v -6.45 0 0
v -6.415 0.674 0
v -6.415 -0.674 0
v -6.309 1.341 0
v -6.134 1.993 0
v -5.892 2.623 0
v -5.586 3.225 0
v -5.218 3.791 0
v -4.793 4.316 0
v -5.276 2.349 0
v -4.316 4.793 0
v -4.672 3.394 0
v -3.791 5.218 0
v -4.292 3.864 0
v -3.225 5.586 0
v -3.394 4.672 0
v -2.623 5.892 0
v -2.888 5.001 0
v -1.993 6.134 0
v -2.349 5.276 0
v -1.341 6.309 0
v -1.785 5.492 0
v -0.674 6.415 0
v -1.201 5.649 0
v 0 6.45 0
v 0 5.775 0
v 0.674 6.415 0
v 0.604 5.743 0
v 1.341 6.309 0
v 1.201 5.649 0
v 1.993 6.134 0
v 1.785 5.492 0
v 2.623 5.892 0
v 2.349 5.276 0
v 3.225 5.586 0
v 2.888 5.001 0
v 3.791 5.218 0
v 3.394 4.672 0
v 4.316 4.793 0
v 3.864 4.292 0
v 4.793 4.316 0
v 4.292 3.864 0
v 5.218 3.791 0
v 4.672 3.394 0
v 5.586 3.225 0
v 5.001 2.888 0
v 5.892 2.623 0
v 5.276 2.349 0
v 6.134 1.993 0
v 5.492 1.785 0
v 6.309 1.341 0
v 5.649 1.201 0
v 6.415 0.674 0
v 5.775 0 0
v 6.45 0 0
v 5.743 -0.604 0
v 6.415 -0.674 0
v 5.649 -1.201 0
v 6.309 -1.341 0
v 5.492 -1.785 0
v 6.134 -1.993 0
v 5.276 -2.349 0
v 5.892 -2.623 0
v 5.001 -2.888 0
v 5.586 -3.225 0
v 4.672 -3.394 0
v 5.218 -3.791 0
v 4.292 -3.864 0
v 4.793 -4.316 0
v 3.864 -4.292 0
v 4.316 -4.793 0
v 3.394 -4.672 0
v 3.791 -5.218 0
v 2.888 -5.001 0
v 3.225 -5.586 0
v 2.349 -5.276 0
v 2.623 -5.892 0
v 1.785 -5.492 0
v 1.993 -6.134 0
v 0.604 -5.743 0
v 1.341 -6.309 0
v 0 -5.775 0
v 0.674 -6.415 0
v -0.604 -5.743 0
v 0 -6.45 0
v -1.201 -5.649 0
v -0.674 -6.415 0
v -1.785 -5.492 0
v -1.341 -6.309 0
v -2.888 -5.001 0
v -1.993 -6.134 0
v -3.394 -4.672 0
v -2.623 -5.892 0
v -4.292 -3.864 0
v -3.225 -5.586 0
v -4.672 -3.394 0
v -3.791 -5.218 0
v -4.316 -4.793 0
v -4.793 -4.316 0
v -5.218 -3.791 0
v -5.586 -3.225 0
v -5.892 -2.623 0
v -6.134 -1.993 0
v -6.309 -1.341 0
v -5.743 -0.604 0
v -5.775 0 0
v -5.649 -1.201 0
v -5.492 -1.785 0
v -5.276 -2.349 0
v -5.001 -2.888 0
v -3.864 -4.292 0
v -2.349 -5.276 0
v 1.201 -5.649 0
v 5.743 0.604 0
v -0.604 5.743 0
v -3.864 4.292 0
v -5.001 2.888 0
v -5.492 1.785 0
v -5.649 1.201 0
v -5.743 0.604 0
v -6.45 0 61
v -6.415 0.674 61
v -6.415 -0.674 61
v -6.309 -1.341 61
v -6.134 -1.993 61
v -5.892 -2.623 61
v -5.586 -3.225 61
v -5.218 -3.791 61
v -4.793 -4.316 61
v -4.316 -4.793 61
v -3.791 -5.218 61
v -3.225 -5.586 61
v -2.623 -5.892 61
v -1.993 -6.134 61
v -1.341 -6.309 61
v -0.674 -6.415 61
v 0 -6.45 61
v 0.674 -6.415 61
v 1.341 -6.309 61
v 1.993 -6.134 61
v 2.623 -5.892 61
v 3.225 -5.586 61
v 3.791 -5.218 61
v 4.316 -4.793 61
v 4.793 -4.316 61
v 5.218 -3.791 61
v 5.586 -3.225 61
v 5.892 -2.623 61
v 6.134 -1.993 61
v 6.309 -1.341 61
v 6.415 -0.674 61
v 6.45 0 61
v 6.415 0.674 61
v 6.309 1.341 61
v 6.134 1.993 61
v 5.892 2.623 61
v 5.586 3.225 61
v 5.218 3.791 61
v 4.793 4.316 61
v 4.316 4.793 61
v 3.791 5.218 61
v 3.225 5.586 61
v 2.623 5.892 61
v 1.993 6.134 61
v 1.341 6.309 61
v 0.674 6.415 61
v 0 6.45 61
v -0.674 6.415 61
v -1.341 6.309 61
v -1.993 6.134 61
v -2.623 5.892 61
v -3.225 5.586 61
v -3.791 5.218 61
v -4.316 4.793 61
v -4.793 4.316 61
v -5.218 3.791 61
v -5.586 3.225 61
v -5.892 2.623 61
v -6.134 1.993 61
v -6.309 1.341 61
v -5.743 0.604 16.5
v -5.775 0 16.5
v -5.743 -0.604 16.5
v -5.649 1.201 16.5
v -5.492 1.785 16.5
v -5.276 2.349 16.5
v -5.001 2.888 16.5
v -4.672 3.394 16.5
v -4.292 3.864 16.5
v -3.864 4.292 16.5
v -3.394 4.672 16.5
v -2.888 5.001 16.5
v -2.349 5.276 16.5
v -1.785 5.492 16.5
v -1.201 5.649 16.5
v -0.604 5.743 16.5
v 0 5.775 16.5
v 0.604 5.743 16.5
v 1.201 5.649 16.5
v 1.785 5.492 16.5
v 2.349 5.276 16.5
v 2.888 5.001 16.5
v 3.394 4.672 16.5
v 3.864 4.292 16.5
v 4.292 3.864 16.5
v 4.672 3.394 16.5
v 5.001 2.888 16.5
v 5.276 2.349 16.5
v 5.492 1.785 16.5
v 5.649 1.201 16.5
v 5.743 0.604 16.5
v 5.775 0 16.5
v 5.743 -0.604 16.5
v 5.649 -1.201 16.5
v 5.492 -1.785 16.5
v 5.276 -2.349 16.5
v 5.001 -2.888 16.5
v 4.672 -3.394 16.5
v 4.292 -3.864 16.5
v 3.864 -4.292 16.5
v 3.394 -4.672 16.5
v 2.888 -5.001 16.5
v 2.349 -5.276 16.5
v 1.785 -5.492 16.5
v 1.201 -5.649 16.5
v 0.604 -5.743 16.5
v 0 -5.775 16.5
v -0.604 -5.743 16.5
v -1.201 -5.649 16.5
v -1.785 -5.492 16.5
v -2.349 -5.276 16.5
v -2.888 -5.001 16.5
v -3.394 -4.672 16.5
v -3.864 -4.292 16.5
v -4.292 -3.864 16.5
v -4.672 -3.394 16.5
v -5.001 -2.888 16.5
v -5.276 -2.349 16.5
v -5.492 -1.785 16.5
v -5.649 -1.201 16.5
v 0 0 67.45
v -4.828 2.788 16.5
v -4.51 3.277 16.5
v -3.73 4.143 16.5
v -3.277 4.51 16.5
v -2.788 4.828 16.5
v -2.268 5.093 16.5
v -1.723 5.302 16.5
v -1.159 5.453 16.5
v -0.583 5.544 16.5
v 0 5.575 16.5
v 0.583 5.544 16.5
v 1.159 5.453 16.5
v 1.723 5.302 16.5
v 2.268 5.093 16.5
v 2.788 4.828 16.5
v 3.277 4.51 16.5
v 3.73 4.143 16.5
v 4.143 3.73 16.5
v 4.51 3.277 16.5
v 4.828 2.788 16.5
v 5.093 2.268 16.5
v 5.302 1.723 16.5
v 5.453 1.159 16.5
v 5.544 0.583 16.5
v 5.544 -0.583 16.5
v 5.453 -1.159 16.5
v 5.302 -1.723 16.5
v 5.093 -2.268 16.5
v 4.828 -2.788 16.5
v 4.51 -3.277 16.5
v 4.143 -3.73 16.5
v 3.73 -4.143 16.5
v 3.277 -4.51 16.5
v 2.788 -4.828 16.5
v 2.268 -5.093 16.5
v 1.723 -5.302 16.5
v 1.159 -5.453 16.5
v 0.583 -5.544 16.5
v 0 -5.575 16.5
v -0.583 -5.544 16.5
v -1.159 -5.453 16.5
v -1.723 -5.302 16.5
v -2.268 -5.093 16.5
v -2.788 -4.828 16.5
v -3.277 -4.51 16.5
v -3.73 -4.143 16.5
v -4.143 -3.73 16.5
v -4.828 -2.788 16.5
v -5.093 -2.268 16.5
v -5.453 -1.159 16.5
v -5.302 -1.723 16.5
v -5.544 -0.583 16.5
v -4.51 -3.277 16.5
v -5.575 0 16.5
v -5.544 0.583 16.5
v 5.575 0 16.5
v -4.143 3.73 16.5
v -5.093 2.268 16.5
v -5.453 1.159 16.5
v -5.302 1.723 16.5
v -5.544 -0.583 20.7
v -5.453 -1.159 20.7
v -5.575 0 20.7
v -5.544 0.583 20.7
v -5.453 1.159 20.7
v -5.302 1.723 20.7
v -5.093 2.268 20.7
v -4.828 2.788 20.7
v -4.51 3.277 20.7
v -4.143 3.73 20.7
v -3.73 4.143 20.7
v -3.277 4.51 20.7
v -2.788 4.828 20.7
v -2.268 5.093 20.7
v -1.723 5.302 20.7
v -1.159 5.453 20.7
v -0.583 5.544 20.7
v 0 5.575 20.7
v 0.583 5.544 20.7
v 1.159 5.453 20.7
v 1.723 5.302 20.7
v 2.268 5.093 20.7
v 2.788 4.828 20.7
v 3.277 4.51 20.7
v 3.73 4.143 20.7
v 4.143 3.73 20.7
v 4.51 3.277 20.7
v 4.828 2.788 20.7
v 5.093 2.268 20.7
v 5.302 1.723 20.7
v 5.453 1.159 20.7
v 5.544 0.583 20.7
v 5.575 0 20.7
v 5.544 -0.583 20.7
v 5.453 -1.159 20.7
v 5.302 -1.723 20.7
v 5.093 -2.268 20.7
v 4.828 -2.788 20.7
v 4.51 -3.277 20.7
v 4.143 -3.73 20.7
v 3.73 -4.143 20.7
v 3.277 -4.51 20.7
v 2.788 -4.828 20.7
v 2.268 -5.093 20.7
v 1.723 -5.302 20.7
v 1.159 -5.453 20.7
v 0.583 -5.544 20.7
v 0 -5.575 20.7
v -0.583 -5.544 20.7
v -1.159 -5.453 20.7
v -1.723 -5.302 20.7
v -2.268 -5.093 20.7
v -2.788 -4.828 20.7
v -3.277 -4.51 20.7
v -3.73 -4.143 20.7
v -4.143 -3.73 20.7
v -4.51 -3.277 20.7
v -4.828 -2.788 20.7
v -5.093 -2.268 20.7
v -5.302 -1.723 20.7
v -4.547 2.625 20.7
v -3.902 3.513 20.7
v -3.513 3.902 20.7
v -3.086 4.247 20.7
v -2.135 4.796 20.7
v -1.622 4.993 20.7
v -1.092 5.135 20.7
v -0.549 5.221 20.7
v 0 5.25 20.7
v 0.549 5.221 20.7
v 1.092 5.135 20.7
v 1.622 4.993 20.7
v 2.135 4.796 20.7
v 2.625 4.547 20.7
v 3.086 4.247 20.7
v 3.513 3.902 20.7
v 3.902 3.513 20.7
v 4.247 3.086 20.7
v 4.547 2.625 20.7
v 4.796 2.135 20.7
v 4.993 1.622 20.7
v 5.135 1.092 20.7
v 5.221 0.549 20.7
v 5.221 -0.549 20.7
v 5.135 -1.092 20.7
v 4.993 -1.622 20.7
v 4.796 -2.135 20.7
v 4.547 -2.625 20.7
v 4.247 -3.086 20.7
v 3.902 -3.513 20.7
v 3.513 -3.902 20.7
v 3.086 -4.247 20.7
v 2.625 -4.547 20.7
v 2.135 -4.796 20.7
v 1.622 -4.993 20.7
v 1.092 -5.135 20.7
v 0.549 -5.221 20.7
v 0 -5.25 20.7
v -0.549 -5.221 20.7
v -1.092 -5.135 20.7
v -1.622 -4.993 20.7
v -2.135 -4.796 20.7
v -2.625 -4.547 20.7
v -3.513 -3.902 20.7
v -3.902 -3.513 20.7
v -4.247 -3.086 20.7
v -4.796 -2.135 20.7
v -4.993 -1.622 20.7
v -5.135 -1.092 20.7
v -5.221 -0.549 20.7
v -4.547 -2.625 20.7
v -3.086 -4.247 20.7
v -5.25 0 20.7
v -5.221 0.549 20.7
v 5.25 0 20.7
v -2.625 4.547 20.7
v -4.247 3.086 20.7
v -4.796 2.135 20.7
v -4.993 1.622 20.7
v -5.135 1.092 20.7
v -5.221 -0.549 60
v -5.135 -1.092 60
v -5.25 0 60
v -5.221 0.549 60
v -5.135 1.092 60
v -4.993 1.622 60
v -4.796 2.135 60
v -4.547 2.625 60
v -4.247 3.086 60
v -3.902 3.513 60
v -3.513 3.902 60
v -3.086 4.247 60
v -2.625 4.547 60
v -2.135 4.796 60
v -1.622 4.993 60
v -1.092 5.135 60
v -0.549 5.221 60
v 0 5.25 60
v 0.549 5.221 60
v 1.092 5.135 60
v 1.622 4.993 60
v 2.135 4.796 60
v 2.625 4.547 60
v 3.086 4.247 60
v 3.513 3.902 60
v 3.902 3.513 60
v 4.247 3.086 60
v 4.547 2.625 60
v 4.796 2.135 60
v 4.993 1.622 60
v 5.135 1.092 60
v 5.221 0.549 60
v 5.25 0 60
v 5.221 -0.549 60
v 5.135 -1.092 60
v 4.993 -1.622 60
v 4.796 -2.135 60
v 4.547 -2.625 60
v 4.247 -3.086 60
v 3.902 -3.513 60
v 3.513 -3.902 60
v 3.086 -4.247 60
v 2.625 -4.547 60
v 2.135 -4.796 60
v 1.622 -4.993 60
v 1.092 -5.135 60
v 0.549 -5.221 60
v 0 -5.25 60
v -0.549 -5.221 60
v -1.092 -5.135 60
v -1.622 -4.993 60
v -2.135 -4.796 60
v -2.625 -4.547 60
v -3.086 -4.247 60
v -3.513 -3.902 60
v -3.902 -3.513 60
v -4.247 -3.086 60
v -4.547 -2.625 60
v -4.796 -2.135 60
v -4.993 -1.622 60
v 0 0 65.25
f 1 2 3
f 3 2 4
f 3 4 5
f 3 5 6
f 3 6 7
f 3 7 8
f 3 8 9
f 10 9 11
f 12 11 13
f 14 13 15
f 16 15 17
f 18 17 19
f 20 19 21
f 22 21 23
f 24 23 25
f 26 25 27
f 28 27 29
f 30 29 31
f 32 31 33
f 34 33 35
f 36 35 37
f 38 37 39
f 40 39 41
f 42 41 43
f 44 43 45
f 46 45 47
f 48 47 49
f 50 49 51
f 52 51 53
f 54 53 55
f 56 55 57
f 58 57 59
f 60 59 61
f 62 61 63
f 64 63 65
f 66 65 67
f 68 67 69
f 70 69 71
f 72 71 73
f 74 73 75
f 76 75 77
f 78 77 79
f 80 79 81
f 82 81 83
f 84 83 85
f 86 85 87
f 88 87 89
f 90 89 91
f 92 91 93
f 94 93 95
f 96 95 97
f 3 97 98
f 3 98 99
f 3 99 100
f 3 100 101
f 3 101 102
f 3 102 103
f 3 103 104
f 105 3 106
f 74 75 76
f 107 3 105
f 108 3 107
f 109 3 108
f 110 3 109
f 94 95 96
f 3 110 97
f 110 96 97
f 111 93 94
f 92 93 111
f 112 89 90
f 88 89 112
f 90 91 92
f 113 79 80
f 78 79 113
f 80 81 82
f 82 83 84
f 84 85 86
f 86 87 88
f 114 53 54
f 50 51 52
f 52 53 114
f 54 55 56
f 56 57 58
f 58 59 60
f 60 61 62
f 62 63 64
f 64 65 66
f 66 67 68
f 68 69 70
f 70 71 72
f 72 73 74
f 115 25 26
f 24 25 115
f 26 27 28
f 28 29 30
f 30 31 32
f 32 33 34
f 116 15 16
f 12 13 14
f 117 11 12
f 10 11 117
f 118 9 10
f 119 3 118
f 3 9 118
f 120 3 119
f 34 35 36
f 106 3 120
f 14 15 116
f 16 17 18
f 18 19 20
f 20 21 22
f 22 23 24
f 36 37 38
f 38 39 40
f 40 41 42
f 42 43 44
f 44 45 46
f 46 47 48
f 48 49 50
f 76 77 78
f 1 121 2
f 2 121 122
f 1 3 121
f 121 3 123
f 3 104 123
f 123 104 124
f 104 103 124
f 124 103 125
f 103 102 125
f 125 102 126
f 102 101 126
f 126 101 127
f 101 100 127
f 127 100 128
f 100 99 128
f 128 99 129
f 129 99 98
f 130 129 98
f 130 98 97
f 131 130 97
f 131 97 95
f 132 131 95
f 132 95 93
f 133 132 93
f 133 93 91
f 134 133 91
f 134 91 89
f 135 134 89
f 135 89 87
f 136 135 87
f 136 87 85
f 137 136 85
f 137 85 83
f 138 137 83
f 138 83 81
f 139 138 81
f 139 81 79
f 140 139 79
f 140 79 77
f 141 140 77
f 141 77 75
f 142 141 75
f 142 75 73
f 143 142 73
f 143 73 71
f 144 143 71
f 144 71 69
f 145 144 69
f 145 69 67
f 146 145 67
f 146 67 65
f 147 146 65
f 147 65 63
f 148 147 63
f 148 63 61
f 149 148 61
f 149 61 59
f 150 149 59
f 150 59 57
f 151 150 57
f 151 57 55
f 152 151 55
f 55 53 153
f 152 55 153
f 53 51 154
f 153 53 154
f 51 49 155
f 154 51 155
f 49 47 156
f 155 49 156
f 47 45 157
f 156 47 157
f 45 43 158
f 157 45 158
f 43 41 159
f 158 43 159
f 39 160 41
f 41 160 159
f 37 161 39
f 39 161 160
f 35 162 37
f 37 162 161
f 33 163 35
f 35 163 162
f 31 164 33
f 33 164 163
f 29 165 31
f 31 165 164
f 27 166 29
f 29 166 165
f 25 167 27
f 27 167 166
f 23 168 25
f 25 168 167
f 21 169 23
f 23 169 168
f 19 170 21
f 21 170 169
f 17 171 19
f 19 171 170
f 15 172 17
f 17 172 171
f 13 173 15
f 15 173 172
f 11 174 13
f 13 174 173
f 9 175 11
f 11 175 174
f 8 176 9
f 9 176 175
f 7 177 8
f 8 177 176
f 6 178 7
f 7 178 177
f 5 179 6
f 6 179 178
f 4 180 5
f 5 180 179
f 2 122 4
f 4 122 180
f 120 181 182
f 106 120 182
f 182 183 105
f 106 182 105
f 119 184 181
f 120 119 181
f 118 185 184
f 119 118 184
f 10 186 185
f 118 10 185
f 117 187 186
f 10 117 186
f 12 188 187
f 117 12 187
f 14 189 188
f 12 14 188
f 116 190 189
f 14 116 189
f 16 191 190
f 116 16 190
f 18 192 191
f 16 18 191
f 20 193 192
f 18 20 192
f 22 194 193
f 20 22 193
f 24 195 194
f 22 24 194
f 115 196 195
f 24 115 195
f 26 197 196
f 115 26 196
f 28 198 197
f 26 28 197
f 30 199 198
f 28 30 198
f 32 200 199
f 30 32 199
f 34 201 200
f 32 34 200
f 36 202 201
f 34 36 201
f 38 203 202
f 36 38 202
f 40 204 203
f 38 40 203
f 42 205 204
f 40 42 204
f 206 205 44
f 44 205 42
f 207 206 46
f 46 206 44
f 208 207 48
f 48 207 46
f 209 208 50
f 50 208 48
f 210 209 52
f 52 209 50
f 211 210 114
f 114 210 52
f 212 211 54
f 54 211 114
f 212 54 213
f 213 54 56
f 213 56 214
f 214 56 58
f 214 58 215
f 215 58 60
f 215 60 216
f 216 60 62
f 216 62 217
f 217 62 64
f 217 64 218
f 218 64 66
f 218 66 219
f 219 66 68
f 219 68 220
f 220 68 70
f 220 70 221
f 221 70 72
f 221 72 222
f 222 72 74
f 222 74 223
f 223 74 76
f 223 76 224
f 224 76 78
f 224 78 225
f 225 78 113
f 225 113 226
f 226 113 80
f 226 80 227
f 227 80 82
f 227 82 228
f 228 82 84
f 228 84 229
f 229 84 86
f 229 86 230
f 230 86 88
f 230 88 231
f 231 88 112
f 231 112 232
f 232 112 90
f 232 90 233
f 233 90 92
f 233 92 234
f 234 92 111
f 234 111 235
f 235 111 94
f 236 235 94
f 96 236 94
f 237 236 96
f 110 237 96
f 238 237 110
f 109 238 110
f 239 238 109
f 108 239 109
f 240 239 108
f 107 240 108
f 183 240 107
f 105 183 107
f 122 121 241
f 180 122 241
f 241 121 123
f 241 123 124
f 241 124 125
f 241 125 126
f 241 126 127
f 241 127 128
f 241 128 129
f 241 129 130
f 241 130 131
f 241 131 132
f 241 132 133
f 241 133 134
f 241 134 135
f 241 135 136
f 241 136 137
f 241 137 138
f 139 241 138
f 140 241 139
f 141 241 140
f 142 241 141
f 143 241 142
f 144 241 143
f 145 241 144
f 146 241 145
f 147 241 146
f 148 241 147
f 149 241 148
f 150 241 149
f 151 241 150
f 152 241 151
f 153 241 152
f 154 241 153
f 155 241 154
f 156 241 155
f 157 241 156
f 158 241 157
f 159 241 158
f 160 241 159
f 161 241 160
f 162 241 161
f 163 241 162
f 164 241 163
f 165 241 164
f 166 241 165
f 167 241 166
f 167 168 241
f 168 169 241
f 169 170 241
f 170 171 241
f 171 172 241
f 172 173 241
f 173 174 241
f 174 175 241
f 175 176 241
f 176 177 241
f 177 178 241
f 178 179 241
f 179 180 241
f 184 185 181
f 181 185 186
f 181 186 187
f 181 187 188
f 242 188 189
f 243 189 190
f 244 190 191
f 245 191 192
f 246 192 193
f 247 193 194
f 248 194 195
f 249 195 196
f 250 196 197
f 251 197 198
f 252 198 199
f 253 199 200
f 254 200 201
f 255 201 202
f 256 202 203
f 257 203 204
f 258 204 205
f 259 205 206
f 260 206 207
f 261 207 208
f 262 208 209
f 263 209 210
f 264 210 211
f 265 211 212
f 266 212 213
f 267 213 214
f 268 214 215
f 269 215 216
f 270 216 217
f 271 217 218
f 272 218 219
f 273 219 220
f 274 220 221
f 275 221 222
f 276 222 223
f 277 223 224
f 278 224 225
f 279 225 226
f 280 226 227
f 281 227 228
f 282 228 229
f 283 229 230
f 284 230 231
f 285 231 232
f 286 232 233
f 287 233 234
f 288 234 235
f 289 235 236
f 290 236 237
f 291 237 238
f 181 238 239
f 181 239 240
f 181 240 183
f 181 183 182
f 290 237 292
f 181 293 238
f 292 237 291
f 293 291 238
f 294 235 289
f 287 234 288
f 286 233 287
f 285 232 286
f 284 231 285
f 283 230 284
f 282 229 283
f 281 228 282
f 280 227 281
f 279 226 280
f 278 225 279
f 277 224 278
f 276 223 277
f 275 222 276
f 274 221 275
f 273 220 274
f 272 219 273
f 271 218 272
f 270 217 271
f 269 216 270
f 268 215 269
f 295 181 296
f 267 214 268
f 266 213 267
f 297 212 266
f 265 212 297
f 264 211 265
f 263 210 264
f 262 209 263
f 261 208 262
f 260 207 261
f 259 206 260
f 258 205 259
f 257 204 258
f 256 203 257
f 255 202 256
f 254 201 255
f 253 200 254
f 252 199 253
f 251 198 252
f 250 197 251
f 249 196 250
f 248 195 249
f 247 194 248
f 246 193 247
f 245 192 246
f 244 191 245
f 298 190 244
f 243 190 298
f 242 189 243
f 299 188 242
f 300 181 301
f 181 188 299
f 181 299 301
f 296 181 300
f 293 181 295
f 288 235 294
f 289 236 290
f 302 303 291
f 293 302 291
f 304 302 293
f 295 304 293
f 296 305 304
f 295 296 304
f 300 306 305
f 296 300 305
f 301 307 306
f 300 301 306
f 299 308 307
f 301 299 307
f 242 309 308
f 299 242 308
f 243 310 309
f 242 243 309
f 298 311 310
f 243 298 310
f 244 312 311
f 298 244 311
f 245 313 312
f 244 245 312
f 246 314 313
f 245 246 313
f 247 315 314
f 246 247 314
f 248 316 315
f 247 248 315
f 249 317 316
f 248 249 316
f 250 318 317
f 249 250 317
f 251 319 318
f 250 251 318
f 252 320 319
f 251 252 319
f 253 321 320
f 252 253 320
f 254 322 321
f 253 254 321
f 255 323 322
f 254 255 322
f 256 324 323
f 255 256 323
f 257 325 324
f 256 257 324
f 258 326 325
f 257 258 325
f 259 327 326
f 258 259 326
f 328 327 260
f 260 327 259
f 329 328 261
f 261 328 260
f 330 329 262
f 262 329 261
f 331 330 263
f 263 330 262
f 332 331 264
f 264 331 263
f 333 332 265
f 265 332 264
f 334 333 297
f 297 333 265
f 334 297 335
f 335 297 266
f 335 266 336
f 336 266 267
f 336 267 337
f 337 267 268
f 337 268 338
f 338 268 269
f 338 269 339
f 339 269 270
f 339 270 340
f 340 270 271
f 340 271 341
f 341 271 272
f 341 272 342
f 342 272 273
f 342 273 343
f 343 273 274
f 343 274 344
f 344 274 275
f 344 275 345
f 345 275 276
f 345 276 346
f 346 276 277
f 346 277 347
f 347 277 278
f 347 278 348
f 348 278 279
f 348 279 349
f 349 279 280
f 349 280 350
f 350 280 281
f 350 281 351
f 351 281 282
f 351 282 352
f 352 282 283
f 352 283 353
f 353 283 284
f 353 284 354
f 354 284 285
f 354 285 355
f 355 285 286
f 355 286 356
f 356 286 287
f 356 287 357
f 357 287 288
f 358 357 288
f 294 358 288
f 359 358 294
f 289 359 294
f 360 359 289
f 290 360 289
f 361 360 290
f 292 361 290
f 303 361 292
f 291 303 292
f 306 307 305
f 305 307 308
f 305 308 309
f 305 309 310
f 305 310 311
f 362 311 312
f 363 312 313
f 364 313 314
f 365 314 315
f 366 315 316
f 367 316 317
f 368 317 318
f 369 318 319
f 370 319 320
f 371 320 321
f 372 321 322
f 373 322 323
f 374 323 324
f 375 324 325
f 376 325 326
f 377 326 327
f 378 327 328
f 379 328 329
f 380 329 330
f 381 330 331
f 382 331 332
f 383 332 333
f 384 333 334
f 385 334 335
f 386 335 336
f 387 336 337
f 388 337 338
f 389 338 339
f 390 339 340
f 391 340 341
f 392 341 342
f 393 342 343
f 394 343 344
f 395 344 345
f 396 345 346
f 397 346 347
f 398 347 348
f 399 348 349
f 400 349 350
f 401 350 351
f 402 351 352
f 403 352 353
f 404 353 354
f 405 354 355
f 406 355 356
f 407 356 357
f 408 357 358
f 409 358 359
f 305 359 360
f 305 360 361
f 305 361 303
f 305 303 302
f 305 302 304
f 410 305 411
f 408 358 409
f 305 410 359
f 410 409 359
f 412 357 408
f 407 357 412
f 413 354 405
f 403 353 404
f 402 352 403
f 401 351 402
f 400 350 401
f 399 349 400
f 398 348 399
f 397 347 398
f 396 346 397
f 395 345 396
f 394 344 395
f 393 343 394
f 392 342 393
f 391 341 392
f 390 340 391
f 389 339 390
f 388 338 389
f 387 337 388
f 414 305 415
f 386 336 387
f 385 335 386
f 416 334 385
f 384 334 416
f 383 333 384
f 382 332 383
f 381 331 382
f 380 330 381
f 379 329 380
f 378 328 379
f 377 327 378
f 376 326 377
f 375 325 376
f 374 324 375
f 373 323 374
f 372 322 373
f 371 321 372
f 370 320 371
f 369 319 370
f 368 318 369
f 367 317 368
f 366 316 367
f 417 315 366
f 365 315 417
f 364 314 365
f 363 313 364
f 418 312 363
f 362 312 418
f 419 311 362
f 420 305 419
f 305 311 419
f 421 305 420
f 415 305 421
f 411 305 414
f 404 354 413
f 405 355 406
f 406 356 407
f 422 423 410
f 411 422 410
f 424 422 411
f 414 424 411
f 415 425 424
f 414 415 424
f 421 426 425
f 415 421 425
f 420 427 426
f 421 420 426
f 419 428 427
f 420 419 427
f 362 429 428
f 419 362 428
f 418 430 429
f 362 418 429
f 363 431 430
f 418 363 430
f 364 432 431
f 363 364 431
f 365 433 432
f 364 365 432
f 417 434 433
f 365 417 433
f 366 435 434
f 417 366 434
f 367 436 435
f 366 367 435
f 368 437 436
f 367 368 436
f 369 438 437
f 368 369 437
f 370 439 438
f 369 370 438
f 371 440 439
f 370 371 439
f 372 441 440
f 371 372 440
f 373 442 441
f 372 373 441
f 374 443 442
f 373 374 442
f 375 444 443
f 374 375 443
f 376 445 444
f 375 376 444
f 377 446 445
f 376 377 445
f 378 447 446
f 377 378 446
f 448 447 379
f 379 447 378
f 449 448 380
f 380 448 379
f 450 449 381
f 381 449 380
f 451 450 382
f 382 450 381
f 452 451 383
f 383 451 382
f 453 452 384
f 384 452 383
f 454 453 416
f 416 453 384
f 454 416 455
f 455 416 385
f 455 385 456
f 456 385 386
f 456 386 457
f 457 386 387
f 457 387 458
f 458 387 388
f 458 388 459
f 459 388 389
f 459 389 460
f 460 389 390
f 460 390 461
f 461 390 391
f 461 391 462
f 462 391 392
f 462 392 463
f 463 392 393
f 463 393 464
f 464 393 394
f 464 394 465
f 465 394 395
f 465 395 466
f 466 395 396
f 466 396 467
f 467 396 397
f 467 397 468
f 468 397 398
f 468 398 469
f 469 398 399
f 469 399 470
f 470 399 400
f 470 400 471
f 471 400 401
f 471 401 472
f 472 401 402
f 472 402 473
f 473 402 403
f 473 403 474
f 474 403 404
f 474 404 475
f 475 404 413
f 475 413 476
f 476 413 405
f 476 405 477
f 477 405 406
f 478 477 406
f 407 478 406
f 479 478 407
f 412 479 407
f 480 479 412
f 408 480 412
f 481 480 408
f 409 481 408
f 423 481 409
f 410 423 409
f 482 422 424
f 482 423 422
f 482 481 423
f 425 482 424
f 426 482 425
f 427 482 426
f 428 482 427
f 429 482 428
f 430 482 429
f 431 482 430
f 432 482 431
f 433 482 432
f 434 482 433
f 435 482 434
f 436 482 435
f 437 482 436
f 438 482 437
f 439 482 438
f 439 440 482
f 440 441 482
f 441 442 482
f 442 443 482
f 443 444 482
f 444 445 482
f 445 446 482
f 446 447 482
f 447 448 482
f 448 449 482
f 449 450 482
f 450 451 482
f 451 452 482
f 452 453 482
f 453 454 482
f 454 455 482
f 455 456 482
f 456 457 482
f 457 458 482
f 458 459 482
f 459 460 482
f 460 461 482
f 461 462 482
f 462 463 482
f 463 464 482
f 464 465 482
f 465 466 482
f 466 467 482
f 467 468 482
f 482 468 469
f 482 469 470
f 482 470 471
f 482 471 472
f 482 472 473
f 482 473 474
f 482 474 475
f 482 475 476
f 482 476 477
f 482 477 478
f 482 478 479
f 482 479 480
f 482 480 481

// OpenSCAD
$fn=60;

difference()
{
	union()
	{
			cylinder(r=1.2+10.5/2,h=61);
			translate([0,0,61])
				cylinder(r1=1.2+10.5/2,r2=0,h=1.2+10.5/2);			
	}

	cylinder(r=10.5/2,h=60);
	cylinder(r=11.15/2,h=20.7);
	cylinder(r=11.55/2,h=16.5);

	translate([0,0,60])
		cylinder(r1=10.5/2,r2=0,h=10.5/2);
}
